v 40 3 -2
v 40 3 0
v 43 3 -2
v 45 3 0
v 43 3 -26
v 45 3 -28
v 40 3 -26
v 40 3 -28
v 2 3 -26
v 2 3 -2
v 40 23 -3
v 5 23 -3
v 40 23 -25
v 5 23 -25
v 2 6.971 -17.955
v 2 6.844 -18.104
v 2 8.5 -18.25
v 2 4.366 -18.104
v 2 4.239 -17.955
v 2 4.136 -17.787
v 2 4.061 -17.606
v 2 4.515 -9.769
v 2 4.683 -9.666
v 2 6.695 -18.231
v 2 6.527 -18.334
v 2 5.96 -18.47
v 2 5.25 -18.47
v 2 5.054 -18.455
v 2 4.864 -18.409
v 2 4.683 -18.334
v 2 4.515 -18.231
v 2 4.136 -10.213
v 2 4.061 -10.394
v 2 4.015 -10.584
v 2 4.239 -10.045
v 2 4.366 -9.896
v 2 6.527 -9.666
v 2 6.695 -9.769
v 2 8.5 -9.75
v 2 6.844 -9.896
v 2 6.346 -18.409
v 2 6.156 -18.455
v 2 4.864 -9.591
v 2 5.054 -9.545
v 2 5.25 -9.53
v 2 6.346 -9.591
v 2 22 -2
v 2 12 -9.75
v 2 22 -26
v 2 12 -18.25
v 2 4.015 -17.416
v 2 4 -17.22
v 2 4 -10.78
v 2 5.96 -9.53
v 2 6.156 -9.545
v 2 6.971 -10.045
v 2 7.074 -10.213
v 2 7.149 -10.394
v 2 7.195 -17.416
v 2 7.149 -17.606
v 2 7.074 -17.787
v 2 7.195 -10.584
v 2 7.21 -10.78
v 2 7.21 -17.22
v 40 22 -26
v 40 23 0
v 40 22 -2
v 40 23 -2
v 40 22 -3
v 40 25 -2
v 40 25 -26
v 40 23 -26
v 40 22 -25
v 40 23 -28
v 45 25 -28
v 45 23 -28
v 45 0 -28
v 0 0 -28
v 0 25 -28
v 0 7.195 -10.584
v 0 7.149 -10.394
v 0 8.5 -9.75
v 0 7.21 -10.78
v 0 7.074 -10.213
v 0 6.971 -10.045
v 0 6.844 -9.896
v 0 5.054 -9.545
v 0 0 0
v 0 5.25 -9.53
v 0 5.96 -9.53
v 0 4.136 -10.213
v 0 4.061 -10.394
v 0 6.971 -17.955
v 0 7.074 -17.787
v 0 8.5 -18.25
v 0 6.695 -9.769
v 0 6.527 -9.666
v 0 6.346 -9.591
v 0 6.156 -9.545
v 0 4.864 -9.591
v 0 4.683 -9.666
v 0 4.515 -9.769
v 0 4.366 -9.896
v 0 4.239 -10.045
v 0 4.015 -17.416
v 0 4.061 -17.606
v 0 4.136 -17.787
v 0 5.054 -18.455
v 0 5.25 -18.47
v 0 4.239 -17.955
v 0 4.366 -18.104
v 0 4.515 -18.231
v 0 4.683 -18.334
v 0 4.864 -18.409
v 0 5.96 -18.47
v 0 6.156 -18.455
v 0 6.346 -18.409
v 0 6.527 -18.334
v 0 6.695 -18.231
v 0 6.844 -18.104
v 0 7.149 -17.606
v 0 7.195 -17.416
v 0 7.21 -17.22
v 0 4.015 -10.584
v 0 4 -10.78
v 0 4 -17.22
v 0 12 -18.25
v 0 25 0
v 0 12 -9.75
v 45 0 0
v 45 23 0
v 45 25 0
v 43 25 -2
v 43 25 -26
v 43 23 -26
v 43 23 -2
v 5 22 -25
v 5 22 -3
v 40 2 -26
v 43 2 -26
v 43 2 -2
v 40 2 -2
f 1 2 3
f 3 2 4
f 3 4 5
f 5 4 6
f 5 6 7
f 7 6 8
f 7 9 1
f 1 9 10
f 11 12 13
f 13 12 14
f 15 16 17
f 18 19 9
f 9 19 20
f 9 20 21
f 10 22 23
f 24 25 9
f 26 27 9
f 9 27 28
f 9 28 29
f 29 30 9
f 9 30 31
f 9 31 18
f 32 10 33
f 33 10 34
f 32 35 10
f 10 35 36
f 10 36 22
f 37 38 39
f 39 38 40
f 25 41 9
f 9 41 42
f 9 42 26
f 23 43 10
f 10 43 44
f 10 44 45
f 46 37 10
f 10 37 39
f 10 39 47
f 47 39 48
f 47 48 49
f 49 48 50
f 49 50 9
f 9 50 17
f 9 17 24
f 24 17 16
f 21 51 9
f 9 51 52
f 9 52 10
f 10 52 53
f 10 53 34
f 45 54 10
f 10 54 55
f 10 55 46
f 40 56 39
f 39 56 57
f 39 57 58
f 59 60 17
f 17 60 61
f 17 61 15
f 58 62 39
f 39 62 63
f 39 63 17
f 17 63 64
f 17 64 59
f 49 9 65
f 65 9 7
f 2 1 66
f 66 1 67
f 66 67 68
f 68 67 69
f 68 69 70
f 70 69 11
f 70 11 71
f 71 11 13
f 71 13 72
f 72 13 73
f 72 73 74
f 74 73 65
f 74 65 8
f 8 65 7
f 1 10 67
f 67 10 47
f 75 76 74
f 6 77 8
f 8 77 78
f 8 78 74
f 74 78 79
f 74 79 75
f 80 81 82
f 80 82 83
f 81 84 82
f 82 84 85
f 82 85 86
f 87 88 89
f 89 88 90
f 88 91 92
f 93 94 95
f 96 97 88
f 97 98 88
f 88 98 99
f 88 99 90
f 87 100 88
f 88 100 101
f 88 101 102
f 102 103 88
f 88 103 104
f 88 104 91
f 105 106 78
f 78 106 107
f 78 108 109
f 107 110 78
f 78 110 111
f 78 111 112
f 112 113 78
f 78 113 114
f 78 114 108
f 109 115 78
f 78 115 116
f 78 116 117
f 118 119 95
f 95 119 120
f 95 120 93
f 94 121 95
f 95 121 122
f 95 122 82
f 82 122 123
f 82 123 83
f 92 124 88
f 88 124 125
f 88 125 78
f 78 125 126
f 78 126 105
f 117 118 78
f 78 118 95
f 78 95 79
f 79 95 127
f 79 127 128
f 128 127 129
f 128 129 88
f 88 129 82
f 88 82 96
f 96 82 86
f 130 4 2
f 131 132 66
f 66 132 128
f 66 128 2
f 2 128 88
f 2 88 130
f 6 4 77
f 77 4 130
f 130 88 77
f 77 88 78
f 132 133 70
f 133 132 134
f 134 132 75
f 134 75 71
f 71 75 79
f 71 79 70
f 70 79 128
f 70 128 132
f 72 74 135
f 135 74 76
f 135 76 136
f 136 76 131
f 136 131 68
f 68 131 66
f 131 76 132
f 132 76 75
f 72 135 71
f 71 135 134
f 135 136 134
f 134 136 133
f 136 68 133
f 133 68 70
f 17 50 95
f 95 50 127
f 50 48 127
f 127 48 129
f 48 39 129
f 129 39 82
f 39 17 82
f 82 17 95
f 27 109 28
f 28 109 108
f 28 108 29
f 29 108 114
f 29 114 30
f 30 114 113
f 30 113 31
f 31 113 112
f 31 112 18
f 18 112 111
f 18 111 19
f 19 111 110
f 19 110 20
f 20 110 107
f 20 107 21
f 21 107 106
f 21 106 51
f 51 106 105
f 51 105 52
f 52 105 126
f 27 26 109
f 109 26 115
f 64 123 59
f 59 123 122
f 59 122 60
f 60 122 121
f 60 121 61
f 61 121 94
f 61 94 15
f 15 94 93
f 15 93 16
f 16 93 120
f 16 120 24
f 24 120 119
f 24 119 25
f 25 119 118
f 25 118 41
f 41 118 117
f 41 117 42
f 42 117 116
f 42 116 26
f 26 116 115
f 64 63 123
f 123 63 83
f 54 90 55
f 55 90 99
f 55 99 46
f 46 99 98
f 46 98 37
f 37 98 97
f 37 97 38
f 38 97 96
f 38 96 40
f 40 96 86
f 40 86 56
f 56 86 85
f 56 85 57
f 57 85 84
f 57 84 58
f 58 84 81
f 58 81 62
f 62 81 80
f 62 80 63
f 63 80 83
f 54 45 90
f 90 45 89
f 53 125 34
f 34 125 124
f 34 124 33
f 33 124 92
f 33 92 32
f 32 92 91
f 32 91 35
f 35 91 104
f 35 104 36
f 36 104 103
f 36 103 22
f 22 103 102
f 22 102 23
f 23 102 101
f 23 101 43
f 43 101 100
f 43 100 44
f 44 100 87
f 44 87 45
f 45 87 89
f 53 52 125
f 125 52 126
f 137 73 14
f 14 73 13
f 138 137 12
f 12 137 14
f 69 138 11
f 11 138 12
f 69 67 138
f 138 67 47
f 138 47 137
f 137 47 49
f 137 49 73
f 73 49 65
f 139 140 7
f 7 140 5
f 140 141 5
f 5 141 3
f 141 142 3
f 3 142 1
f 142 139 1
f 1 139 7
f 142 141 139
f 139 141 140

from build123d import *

# Parameters (mm, degrees)
SKETCH1_W           = 45
SKETCH1_H           = 28
BOSS_EXTRUDE1_DEPTH = 3
BOSS_EXTRUDE2_DEPTH = 22
SKETCH4_W           = 45
SKETCH4_H           = 28
SKETCH4_W_2         = 3
SKETCH4_H_2         = 24
BOSS_EXTRUDE4_DEPTH = 2
SKETCH5_W           = 8.5
SKETCH5_H           = 3.5
CUT_EXTRUDE1_DEPTH  = 2
BOSS_EXTRUDE6_DEPTH = 1
SKETCH8_W           = 3
SKETCH8_H           = 24
CUT_EXTRUDE2_DEPTH  = 1


with BuildPart() as part:
    # Sketch1 → Boss-Extrude1 (new body)
    with BuildSketch(Plane(origin=(0, 0, 0), x_dir=(1, 0, 0), z_dir=(0, 1, 0))):
        with Locations((22.5, 14)):
            Rectangle(SKETCH1_W, SKETCH1_H)
    extrude(amount=BOSS_EXTRUDE1_DEPTH)

    # Sketch2 → Boss-Extrude2 (add)
    with BuildSketch(Plane(origin=(0, 3, 0), x_dir=(1, 0, 0), z_dir=(0, 1, 0))):
        Polygon((40, 26), (40, 28), (0, 28), (0, 0), (40, 0), (40, 2), (2, 2), (2, 26), align=None)
    extrude(amount=BOSS_EXTRUDE2_DEPTH)

    # Sketch4 → Boss-Extrude4 (add)
    with BuildSketch(Plane(origin=(0, 25, 0), x_dir=(1, 0, 0), z_dir=(0, 1, 0))):
        with Locations((22.5, 14)):
            Rectangle(SKETCH4_W, SKETCH4_H)
        with Locations((41.5, 14)):
            Rectangle(SKETCH4_W_2, SKETCH4_H_2, mode=Mode.SUBTRACT)
    extrude(amount=-BOSS_EXTRUDE4_DEPTH)

    # Sketch5 → Cut-Extrude1 (cut)
    with BuildSketch(Plane.ZY):
        with BuildLine():
            Line((-18.47, 5.25), (-18.47, 5.96))
            ThreePointArc((-18.47, 5.96), (-18.103883476, 6.843883476), (-17.22, 7.21))
            Line((-17.22, 7.21), (-10.78, 7.21))
            ThreePointArc((-10.78, 7.21), (-9.896116524, 6.843883476), (-9.53, 5.96))
            Line((-9.53, 5.96), (-9.53, 5.25))
            ThreePointArc((-9.53, 5.25), (-9.896116524, 4.366116524), (-10.78, 4))
            Line((-10.78, 4), (-17.22, 4))
            ThreePointArc((-17.22, 4), (-18.103883476, 4.366116524), (-18.47, 5.25))
        make_face()
        with Locations((-14, 10.25)):
            Rectangle(SKETCH5_W, SKETCH5_H)
    extrude(amount=-CUT_EXTRUDE1_DEPTH, mode=Mode.SUBTRACT)

    # Sketch7 → Boss-Extrude6 (add)
    with BuildSketch(Plane.XZ.offset(-23)):
        Polygon((40, -25), (5, -25), (5, -3), (40, -3), (40, -2), (2, -2), (2, -26), (40, -26), align=None)
    extrude(amount=BOSS_EXTRUDE6_DEPTH)

    # Sketch8 → Cut-Extrude2 (cut)
    with BuildSketch(Plane(origin=(0, 3, 0), x_dir=(1, 0, 0), z_dir=(0, 1, 0))):
        with Locations((41.5, 14)):
            Rectangle(SKETCH8_W, SKETCH8_H)
    extrude(amount=-CUT_EXTRUDE2_DEPTH, mode=Mode.SUBTRACT)


solid = part.part
